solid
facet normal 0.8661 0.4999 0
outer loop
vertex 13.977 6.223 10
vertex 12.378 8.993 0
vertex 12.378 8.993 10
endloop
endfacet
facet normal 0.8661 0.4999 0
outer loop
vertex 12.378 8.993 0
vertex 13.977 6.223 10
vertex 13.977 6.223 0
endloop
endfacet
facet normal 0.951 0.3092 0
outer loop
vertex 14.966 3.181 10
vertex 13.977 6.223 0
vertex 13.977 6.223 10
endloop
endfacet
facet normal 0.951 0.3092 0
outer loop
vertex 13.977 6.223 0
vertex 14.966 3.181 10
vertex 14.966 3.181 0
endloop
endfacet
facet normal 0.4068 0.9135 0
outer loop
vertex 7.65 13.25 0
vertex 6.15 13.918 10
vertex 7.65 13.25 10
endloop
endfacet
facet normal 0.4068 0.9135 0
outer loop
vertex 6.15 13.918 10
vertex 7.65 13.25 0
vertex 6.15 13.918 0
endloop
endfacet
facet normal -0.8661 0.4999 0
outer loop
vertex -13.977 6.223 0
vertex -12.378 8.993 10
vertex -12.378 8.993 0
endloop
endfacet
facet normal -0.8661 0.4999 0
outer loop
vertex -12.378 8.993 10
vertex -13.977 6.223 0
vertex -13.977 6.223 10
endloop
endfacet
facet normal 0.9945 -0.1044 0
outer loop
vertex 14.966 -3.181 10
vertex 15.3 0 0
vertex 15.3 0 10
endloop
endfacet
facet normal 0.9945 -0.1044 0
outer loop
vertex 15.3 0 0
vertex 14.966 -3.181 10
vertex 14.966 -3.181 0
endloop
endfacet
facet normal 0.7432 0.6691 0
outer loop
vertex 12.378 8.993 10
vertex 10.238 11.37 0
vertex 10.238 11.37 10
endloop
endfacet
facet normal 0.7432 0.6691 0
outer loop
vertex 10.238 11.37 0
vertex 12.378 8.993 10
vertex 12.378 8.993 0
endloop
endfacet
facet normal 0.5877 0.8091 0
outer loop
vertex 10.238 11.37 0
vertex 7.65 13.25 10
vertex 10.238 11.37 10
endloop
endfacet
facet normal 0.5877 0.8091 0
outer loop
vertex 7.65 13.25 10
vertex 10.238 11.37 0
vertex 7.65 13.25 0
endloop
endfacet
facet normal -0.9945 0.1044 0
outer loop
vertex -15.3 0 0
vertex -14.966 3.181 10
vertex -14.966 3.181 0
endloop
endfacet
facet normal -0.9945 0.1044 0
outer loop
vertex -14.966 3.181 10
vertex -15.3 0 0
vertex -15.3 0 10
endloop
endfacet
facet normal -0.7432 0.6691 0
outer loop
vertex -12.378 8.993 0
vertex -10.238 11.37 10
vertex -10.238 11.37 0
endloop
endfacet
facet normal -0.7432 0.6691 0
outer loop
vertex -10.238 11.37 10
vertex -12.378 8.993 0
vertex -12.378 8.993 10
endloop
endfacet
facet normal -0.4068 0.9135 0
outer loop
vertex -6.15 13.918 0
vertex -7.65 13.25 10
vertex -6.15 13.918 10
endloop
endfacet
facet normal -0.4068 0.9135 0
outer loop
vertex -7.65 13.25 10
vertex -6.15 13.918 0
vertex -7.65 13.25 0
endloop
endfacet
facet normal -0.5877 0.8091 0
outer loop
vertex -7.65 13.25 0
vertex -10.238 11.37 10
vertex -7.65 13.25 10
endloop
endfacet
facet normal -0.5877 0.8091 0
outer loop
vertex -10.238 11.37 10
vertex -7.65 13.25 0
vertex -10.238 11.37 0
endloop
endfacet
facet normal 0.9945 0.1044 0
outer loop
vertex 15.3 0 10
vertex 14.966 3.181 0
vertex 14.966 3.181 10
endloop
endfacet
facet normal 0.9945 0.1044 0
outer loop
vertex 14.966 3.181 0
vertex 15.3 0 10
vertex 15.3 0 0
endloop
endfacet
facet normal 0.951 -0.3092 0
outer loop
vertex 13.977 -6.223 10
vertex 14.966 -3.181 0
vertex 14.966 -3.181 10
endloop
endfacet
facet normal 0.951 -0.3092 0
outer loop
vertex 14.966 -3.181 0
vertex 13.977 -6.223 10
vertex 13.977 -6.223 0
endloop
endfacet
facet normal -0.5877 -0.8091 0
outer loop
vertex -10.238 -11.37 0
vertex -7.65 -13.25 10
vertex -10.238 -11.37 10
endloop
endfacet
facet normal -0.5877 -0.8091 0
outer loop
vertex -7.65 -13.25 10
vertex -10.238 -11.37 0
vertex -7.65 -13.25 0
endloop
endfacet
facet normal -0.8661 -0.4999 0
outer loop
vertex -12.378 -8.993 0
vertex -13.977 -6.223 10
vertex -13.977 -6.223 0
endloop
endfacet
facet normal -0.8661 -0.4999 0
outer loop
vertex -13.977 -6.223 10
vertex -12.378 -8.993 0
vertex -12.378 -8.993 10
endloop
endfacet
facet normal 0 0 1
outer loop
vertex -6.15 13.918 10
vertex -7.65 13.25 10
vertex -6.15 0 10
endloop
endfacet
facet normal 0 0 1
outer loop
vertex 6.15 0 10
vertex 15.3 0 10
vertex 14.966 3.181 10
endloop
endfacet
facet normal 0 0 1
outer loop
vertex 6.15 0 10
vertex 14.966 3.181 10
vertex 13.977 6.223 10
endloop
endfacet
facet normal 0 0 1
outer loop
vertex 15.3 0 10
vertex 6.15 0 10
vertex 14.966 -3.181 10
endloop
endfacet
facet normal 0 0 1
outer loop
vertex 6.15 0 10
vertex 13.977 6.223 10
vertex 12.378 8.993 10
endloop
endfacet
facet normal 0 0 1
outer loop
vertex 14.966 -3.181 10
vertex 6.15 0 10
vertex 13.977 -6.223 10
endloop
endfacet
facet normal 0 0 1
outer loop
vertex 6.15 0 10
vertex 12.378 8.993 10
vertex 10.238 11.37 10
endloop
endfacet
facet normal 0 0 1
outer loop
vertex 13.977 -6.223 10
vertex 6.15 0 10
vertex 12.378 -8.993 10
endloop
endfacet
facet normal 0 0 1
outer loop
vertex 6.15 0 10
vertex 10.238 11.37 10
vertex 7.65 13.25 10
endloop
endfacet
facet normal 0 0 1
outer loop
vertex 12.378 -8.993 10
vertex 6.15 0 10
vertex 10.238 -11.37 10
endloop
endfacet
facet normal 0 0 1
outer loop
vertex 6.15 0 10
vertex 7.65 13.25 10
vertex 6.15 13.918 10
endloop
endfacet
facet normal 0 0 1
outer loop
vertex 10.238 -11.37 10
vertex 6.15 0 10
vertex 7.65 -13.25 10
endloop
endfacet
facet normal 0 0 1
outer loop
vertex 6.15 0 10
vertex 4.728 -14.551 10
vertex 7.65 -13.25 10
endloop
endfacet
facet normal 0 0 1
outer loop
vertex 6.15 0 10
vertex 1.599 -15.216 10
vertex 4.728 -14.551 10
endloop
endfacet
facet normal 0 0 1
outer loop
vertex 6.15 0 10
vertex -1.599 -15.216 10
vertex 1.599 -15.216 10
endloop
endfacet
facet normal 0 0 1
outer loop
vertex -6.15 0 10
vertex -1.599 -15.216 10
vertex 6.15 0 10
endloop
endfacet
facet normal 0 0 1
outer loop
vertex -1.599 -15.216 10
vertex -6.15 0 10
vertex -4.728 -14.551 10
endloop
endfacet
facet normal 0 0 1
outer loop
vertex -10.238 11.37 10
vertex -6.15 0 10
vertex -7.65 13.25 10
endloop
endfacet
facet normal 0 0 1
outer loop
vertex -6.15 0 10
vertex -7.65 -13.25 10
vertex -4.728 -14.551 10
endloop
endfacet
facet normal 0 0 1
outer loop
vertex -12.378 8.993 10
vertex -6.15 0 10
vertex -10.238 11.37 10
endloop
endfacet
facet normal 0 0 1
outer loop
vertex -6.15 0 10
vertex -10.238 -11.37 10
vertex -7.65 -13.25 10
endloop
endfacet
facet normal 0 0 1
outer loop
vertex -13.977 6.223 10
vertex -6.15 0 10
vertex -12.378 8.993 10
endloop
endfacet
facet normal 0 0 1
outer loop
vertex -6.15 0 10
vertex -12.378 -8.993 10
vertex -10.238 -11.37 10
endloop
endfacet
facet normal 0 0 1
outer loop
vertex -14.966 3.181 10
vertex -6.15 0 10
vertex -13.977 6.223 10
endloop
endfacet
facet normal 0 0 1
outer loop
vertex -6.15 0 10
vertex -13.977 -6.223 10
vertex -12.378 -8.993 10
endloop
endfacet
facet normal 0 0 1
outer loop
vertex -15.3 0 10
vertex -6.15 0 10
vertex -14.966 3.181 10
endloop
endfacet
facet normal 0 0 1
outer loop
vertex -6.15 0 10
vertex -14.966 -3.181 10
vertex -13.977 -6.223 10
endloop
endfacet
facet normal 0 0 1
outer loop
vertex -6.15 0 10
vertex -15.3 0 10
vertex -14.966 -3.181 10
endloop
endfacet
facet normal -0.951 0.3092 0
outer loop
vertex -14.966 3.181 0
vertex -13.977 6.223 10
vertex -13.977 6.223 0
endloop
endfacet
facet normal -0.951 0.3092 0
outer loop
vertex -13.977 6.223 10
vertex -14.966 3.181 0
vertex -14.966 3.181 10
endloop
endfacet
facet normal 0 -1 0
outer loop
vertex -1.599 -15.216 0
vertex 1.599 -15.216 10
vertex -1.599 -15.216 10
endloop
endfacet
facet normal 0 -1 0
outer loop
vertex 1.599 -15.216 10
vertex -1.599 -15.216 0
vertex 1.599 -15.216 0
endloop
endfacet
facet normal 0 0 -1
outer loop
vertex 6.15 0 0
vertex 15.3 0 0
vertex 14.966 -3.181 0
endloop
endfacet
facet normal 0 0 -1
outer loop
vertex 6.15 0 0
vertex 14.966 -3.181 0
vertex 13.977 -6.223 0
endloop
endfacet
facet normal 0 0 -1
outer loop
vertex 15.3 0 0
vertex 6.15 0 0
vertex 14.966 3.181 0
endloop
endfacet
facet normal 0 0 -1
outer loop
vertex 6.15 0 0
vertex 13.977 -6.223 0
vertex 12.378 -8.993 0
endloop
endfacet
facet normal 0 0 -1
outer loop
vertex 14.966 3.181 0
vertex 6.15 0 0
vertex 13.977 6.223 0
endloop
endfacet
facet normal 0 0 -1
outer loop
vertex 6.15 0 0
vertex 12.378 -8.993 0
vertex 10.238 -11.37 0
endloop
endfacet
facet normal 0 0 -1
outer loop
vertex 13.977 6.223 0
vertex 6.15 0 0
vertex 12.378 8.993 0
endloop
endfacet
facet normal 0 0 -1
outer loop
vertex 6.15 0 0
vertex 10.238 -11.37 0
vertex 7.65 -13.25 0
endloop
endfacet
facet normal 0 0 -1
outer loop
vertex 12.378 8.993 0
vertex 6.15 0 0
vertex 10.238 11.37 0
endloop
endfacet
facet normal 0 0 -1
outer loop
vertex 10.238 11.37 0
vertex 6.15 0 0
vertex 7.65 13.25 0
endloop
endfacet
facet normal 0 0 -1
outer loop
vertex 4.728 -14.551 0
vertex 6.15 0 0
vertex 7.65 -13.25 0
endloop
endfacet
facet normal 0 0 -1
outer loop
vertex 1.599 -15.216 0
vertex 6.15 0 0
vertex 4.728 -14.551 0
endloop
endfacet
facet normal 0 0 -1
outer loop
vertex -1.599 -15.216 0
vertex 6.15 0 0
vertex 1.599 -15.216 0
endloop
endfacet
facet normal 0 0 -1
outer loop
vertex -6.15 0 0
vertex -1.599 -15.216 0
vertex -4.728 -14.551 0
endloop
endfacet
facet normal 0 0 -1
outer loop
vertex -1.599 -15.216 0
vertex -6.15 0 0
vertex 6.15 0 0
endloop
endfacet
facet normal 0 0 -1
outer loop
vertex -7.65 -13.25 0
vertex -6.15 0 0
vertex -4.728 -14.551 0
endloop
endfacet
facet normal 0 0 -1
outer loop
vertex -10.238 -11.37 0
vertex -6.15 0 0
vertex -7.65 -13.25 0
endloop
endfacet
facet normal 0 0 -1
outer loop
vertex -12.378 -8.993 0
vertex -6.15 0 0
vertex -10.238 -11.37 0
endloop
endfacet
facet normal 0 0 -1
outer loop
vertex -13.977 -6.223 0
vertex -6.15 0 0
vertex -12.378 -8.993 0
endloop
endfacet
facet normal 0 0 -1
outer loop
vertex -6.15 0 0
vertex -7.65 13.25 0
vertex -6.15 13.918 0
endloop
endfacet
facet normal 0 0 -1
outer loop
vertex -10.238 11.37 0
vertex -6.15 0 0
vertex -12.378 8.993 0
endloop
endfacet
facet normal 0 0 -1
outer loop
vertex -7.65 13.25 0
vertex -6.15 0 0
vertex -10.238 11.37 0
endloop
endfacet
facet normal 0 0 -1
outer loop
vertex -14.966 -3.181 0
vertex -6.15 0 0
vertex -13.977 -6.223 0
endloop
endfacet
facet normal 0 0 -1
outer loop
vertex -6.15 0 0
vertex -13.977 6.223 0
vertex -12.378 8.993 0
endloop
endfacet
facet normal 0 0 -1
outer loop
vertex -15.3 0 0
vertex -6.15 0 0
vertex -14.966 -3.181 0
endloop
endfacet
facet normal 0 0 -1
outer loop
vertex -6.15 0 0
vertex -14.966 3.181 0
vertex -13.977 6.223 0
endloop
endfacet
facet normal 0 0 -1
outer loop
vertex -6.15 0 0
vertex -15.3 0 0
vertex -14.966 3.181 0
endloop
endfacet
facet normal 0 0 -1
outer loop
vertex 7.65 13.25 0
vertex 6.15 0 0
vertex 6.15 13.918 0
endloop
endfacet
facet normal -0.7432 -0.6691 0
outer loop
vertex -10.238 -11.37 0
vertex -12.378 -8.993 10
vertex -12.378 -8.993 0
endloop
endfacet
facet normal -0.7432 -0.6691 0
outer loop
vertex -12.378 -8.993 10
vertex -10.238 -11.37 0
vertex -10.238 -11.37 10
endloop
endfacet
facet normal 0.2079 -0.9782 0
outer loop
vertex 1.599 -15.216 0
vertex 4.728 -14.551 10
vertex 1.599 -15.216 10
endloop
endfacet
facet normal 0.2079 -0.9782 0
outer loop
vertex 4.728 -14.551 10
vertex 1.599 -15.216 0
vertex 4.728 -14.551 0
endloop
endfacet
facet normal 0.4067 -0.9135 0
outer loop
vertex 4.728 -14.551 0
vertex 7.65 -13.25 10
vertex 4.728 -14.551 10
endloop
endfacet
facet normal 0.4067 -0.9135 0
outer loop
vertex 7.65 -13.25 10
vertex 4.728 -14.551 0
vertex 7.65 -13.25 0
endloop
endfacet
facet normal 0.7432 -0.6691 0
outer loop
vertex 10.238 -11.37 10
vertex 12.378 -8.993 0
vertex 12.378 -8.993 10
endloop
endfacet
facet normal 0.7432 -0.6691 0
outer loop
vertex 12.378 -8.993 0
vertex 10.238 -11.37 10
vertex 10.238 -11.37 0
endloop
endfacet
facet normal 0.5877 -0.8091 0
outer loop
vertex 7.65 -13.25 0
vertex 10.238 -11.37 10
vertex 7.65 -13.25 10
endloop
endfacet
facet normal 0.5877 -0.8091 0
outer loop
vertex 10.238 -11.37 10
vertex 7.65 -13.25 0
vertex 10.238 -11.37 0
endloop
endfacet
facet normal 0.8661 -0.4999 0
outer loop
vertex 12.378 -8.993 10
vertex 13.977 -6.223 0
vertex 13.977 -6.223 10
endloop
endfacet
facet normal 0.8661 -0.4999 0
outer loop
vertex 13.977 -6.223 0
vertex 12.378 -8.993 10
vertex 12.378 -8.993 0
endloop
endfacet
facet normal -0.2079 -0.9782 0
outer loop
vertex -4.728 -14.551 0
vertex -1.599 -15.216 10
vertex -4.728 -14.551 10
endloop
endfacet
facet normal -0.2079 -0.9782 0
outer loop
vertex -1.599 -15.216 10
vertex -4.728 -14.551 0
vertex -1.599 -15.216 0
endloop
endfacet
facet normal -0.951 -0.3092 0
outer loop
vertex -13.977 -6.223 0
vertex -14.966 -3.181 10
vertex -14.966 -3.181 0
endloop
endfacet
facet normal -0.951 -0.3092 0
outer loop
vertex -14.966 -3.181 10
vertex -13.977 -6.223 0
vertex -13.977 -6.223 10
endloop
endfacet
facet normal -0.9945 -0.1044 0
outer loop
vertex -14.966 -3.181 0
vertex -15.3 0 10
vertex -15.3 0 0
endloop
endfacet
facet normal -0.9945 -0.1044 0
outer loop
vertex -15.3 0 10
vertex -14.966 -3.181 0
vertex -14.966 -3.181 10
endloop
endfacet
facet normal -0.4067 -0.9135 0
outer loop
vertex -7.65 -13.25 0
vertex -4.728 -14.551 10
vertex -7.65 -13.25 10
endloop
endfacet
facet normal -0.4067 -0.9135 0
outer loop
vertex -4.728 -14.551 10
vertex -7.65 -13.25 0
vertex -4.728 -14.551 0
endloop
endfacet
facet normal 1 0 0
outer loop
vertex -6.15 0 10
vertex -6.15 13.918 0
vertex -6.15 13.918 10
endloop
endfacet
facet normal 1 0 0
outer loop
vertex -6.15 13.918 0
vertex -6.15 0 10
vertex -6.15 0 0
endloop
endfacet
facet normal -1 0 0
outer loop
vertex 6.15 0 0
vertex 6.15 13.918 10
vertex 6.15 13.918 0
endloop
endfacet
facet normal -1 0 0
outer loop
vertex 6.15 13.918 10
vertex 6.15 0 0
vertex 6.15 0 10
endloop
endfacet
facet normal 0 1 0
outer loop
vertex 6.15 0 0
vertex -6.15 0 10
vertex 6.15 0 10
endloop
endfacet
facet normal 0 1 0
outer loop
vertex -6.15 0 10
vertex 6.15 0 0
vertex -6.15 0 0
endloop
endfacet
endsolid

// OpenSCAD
$fn=30;
H=10;
R=3;
Wood = 12.3;
Rws = R + Wood;
e = 0.1;
inner = Rws + e;
difference()
{
    difference()
    {
        cylinder(h=H,r=Rws);
        translate([-Wood/2,0,-e])
            cube([Wood,inner,H+2*e]);
    }
}
